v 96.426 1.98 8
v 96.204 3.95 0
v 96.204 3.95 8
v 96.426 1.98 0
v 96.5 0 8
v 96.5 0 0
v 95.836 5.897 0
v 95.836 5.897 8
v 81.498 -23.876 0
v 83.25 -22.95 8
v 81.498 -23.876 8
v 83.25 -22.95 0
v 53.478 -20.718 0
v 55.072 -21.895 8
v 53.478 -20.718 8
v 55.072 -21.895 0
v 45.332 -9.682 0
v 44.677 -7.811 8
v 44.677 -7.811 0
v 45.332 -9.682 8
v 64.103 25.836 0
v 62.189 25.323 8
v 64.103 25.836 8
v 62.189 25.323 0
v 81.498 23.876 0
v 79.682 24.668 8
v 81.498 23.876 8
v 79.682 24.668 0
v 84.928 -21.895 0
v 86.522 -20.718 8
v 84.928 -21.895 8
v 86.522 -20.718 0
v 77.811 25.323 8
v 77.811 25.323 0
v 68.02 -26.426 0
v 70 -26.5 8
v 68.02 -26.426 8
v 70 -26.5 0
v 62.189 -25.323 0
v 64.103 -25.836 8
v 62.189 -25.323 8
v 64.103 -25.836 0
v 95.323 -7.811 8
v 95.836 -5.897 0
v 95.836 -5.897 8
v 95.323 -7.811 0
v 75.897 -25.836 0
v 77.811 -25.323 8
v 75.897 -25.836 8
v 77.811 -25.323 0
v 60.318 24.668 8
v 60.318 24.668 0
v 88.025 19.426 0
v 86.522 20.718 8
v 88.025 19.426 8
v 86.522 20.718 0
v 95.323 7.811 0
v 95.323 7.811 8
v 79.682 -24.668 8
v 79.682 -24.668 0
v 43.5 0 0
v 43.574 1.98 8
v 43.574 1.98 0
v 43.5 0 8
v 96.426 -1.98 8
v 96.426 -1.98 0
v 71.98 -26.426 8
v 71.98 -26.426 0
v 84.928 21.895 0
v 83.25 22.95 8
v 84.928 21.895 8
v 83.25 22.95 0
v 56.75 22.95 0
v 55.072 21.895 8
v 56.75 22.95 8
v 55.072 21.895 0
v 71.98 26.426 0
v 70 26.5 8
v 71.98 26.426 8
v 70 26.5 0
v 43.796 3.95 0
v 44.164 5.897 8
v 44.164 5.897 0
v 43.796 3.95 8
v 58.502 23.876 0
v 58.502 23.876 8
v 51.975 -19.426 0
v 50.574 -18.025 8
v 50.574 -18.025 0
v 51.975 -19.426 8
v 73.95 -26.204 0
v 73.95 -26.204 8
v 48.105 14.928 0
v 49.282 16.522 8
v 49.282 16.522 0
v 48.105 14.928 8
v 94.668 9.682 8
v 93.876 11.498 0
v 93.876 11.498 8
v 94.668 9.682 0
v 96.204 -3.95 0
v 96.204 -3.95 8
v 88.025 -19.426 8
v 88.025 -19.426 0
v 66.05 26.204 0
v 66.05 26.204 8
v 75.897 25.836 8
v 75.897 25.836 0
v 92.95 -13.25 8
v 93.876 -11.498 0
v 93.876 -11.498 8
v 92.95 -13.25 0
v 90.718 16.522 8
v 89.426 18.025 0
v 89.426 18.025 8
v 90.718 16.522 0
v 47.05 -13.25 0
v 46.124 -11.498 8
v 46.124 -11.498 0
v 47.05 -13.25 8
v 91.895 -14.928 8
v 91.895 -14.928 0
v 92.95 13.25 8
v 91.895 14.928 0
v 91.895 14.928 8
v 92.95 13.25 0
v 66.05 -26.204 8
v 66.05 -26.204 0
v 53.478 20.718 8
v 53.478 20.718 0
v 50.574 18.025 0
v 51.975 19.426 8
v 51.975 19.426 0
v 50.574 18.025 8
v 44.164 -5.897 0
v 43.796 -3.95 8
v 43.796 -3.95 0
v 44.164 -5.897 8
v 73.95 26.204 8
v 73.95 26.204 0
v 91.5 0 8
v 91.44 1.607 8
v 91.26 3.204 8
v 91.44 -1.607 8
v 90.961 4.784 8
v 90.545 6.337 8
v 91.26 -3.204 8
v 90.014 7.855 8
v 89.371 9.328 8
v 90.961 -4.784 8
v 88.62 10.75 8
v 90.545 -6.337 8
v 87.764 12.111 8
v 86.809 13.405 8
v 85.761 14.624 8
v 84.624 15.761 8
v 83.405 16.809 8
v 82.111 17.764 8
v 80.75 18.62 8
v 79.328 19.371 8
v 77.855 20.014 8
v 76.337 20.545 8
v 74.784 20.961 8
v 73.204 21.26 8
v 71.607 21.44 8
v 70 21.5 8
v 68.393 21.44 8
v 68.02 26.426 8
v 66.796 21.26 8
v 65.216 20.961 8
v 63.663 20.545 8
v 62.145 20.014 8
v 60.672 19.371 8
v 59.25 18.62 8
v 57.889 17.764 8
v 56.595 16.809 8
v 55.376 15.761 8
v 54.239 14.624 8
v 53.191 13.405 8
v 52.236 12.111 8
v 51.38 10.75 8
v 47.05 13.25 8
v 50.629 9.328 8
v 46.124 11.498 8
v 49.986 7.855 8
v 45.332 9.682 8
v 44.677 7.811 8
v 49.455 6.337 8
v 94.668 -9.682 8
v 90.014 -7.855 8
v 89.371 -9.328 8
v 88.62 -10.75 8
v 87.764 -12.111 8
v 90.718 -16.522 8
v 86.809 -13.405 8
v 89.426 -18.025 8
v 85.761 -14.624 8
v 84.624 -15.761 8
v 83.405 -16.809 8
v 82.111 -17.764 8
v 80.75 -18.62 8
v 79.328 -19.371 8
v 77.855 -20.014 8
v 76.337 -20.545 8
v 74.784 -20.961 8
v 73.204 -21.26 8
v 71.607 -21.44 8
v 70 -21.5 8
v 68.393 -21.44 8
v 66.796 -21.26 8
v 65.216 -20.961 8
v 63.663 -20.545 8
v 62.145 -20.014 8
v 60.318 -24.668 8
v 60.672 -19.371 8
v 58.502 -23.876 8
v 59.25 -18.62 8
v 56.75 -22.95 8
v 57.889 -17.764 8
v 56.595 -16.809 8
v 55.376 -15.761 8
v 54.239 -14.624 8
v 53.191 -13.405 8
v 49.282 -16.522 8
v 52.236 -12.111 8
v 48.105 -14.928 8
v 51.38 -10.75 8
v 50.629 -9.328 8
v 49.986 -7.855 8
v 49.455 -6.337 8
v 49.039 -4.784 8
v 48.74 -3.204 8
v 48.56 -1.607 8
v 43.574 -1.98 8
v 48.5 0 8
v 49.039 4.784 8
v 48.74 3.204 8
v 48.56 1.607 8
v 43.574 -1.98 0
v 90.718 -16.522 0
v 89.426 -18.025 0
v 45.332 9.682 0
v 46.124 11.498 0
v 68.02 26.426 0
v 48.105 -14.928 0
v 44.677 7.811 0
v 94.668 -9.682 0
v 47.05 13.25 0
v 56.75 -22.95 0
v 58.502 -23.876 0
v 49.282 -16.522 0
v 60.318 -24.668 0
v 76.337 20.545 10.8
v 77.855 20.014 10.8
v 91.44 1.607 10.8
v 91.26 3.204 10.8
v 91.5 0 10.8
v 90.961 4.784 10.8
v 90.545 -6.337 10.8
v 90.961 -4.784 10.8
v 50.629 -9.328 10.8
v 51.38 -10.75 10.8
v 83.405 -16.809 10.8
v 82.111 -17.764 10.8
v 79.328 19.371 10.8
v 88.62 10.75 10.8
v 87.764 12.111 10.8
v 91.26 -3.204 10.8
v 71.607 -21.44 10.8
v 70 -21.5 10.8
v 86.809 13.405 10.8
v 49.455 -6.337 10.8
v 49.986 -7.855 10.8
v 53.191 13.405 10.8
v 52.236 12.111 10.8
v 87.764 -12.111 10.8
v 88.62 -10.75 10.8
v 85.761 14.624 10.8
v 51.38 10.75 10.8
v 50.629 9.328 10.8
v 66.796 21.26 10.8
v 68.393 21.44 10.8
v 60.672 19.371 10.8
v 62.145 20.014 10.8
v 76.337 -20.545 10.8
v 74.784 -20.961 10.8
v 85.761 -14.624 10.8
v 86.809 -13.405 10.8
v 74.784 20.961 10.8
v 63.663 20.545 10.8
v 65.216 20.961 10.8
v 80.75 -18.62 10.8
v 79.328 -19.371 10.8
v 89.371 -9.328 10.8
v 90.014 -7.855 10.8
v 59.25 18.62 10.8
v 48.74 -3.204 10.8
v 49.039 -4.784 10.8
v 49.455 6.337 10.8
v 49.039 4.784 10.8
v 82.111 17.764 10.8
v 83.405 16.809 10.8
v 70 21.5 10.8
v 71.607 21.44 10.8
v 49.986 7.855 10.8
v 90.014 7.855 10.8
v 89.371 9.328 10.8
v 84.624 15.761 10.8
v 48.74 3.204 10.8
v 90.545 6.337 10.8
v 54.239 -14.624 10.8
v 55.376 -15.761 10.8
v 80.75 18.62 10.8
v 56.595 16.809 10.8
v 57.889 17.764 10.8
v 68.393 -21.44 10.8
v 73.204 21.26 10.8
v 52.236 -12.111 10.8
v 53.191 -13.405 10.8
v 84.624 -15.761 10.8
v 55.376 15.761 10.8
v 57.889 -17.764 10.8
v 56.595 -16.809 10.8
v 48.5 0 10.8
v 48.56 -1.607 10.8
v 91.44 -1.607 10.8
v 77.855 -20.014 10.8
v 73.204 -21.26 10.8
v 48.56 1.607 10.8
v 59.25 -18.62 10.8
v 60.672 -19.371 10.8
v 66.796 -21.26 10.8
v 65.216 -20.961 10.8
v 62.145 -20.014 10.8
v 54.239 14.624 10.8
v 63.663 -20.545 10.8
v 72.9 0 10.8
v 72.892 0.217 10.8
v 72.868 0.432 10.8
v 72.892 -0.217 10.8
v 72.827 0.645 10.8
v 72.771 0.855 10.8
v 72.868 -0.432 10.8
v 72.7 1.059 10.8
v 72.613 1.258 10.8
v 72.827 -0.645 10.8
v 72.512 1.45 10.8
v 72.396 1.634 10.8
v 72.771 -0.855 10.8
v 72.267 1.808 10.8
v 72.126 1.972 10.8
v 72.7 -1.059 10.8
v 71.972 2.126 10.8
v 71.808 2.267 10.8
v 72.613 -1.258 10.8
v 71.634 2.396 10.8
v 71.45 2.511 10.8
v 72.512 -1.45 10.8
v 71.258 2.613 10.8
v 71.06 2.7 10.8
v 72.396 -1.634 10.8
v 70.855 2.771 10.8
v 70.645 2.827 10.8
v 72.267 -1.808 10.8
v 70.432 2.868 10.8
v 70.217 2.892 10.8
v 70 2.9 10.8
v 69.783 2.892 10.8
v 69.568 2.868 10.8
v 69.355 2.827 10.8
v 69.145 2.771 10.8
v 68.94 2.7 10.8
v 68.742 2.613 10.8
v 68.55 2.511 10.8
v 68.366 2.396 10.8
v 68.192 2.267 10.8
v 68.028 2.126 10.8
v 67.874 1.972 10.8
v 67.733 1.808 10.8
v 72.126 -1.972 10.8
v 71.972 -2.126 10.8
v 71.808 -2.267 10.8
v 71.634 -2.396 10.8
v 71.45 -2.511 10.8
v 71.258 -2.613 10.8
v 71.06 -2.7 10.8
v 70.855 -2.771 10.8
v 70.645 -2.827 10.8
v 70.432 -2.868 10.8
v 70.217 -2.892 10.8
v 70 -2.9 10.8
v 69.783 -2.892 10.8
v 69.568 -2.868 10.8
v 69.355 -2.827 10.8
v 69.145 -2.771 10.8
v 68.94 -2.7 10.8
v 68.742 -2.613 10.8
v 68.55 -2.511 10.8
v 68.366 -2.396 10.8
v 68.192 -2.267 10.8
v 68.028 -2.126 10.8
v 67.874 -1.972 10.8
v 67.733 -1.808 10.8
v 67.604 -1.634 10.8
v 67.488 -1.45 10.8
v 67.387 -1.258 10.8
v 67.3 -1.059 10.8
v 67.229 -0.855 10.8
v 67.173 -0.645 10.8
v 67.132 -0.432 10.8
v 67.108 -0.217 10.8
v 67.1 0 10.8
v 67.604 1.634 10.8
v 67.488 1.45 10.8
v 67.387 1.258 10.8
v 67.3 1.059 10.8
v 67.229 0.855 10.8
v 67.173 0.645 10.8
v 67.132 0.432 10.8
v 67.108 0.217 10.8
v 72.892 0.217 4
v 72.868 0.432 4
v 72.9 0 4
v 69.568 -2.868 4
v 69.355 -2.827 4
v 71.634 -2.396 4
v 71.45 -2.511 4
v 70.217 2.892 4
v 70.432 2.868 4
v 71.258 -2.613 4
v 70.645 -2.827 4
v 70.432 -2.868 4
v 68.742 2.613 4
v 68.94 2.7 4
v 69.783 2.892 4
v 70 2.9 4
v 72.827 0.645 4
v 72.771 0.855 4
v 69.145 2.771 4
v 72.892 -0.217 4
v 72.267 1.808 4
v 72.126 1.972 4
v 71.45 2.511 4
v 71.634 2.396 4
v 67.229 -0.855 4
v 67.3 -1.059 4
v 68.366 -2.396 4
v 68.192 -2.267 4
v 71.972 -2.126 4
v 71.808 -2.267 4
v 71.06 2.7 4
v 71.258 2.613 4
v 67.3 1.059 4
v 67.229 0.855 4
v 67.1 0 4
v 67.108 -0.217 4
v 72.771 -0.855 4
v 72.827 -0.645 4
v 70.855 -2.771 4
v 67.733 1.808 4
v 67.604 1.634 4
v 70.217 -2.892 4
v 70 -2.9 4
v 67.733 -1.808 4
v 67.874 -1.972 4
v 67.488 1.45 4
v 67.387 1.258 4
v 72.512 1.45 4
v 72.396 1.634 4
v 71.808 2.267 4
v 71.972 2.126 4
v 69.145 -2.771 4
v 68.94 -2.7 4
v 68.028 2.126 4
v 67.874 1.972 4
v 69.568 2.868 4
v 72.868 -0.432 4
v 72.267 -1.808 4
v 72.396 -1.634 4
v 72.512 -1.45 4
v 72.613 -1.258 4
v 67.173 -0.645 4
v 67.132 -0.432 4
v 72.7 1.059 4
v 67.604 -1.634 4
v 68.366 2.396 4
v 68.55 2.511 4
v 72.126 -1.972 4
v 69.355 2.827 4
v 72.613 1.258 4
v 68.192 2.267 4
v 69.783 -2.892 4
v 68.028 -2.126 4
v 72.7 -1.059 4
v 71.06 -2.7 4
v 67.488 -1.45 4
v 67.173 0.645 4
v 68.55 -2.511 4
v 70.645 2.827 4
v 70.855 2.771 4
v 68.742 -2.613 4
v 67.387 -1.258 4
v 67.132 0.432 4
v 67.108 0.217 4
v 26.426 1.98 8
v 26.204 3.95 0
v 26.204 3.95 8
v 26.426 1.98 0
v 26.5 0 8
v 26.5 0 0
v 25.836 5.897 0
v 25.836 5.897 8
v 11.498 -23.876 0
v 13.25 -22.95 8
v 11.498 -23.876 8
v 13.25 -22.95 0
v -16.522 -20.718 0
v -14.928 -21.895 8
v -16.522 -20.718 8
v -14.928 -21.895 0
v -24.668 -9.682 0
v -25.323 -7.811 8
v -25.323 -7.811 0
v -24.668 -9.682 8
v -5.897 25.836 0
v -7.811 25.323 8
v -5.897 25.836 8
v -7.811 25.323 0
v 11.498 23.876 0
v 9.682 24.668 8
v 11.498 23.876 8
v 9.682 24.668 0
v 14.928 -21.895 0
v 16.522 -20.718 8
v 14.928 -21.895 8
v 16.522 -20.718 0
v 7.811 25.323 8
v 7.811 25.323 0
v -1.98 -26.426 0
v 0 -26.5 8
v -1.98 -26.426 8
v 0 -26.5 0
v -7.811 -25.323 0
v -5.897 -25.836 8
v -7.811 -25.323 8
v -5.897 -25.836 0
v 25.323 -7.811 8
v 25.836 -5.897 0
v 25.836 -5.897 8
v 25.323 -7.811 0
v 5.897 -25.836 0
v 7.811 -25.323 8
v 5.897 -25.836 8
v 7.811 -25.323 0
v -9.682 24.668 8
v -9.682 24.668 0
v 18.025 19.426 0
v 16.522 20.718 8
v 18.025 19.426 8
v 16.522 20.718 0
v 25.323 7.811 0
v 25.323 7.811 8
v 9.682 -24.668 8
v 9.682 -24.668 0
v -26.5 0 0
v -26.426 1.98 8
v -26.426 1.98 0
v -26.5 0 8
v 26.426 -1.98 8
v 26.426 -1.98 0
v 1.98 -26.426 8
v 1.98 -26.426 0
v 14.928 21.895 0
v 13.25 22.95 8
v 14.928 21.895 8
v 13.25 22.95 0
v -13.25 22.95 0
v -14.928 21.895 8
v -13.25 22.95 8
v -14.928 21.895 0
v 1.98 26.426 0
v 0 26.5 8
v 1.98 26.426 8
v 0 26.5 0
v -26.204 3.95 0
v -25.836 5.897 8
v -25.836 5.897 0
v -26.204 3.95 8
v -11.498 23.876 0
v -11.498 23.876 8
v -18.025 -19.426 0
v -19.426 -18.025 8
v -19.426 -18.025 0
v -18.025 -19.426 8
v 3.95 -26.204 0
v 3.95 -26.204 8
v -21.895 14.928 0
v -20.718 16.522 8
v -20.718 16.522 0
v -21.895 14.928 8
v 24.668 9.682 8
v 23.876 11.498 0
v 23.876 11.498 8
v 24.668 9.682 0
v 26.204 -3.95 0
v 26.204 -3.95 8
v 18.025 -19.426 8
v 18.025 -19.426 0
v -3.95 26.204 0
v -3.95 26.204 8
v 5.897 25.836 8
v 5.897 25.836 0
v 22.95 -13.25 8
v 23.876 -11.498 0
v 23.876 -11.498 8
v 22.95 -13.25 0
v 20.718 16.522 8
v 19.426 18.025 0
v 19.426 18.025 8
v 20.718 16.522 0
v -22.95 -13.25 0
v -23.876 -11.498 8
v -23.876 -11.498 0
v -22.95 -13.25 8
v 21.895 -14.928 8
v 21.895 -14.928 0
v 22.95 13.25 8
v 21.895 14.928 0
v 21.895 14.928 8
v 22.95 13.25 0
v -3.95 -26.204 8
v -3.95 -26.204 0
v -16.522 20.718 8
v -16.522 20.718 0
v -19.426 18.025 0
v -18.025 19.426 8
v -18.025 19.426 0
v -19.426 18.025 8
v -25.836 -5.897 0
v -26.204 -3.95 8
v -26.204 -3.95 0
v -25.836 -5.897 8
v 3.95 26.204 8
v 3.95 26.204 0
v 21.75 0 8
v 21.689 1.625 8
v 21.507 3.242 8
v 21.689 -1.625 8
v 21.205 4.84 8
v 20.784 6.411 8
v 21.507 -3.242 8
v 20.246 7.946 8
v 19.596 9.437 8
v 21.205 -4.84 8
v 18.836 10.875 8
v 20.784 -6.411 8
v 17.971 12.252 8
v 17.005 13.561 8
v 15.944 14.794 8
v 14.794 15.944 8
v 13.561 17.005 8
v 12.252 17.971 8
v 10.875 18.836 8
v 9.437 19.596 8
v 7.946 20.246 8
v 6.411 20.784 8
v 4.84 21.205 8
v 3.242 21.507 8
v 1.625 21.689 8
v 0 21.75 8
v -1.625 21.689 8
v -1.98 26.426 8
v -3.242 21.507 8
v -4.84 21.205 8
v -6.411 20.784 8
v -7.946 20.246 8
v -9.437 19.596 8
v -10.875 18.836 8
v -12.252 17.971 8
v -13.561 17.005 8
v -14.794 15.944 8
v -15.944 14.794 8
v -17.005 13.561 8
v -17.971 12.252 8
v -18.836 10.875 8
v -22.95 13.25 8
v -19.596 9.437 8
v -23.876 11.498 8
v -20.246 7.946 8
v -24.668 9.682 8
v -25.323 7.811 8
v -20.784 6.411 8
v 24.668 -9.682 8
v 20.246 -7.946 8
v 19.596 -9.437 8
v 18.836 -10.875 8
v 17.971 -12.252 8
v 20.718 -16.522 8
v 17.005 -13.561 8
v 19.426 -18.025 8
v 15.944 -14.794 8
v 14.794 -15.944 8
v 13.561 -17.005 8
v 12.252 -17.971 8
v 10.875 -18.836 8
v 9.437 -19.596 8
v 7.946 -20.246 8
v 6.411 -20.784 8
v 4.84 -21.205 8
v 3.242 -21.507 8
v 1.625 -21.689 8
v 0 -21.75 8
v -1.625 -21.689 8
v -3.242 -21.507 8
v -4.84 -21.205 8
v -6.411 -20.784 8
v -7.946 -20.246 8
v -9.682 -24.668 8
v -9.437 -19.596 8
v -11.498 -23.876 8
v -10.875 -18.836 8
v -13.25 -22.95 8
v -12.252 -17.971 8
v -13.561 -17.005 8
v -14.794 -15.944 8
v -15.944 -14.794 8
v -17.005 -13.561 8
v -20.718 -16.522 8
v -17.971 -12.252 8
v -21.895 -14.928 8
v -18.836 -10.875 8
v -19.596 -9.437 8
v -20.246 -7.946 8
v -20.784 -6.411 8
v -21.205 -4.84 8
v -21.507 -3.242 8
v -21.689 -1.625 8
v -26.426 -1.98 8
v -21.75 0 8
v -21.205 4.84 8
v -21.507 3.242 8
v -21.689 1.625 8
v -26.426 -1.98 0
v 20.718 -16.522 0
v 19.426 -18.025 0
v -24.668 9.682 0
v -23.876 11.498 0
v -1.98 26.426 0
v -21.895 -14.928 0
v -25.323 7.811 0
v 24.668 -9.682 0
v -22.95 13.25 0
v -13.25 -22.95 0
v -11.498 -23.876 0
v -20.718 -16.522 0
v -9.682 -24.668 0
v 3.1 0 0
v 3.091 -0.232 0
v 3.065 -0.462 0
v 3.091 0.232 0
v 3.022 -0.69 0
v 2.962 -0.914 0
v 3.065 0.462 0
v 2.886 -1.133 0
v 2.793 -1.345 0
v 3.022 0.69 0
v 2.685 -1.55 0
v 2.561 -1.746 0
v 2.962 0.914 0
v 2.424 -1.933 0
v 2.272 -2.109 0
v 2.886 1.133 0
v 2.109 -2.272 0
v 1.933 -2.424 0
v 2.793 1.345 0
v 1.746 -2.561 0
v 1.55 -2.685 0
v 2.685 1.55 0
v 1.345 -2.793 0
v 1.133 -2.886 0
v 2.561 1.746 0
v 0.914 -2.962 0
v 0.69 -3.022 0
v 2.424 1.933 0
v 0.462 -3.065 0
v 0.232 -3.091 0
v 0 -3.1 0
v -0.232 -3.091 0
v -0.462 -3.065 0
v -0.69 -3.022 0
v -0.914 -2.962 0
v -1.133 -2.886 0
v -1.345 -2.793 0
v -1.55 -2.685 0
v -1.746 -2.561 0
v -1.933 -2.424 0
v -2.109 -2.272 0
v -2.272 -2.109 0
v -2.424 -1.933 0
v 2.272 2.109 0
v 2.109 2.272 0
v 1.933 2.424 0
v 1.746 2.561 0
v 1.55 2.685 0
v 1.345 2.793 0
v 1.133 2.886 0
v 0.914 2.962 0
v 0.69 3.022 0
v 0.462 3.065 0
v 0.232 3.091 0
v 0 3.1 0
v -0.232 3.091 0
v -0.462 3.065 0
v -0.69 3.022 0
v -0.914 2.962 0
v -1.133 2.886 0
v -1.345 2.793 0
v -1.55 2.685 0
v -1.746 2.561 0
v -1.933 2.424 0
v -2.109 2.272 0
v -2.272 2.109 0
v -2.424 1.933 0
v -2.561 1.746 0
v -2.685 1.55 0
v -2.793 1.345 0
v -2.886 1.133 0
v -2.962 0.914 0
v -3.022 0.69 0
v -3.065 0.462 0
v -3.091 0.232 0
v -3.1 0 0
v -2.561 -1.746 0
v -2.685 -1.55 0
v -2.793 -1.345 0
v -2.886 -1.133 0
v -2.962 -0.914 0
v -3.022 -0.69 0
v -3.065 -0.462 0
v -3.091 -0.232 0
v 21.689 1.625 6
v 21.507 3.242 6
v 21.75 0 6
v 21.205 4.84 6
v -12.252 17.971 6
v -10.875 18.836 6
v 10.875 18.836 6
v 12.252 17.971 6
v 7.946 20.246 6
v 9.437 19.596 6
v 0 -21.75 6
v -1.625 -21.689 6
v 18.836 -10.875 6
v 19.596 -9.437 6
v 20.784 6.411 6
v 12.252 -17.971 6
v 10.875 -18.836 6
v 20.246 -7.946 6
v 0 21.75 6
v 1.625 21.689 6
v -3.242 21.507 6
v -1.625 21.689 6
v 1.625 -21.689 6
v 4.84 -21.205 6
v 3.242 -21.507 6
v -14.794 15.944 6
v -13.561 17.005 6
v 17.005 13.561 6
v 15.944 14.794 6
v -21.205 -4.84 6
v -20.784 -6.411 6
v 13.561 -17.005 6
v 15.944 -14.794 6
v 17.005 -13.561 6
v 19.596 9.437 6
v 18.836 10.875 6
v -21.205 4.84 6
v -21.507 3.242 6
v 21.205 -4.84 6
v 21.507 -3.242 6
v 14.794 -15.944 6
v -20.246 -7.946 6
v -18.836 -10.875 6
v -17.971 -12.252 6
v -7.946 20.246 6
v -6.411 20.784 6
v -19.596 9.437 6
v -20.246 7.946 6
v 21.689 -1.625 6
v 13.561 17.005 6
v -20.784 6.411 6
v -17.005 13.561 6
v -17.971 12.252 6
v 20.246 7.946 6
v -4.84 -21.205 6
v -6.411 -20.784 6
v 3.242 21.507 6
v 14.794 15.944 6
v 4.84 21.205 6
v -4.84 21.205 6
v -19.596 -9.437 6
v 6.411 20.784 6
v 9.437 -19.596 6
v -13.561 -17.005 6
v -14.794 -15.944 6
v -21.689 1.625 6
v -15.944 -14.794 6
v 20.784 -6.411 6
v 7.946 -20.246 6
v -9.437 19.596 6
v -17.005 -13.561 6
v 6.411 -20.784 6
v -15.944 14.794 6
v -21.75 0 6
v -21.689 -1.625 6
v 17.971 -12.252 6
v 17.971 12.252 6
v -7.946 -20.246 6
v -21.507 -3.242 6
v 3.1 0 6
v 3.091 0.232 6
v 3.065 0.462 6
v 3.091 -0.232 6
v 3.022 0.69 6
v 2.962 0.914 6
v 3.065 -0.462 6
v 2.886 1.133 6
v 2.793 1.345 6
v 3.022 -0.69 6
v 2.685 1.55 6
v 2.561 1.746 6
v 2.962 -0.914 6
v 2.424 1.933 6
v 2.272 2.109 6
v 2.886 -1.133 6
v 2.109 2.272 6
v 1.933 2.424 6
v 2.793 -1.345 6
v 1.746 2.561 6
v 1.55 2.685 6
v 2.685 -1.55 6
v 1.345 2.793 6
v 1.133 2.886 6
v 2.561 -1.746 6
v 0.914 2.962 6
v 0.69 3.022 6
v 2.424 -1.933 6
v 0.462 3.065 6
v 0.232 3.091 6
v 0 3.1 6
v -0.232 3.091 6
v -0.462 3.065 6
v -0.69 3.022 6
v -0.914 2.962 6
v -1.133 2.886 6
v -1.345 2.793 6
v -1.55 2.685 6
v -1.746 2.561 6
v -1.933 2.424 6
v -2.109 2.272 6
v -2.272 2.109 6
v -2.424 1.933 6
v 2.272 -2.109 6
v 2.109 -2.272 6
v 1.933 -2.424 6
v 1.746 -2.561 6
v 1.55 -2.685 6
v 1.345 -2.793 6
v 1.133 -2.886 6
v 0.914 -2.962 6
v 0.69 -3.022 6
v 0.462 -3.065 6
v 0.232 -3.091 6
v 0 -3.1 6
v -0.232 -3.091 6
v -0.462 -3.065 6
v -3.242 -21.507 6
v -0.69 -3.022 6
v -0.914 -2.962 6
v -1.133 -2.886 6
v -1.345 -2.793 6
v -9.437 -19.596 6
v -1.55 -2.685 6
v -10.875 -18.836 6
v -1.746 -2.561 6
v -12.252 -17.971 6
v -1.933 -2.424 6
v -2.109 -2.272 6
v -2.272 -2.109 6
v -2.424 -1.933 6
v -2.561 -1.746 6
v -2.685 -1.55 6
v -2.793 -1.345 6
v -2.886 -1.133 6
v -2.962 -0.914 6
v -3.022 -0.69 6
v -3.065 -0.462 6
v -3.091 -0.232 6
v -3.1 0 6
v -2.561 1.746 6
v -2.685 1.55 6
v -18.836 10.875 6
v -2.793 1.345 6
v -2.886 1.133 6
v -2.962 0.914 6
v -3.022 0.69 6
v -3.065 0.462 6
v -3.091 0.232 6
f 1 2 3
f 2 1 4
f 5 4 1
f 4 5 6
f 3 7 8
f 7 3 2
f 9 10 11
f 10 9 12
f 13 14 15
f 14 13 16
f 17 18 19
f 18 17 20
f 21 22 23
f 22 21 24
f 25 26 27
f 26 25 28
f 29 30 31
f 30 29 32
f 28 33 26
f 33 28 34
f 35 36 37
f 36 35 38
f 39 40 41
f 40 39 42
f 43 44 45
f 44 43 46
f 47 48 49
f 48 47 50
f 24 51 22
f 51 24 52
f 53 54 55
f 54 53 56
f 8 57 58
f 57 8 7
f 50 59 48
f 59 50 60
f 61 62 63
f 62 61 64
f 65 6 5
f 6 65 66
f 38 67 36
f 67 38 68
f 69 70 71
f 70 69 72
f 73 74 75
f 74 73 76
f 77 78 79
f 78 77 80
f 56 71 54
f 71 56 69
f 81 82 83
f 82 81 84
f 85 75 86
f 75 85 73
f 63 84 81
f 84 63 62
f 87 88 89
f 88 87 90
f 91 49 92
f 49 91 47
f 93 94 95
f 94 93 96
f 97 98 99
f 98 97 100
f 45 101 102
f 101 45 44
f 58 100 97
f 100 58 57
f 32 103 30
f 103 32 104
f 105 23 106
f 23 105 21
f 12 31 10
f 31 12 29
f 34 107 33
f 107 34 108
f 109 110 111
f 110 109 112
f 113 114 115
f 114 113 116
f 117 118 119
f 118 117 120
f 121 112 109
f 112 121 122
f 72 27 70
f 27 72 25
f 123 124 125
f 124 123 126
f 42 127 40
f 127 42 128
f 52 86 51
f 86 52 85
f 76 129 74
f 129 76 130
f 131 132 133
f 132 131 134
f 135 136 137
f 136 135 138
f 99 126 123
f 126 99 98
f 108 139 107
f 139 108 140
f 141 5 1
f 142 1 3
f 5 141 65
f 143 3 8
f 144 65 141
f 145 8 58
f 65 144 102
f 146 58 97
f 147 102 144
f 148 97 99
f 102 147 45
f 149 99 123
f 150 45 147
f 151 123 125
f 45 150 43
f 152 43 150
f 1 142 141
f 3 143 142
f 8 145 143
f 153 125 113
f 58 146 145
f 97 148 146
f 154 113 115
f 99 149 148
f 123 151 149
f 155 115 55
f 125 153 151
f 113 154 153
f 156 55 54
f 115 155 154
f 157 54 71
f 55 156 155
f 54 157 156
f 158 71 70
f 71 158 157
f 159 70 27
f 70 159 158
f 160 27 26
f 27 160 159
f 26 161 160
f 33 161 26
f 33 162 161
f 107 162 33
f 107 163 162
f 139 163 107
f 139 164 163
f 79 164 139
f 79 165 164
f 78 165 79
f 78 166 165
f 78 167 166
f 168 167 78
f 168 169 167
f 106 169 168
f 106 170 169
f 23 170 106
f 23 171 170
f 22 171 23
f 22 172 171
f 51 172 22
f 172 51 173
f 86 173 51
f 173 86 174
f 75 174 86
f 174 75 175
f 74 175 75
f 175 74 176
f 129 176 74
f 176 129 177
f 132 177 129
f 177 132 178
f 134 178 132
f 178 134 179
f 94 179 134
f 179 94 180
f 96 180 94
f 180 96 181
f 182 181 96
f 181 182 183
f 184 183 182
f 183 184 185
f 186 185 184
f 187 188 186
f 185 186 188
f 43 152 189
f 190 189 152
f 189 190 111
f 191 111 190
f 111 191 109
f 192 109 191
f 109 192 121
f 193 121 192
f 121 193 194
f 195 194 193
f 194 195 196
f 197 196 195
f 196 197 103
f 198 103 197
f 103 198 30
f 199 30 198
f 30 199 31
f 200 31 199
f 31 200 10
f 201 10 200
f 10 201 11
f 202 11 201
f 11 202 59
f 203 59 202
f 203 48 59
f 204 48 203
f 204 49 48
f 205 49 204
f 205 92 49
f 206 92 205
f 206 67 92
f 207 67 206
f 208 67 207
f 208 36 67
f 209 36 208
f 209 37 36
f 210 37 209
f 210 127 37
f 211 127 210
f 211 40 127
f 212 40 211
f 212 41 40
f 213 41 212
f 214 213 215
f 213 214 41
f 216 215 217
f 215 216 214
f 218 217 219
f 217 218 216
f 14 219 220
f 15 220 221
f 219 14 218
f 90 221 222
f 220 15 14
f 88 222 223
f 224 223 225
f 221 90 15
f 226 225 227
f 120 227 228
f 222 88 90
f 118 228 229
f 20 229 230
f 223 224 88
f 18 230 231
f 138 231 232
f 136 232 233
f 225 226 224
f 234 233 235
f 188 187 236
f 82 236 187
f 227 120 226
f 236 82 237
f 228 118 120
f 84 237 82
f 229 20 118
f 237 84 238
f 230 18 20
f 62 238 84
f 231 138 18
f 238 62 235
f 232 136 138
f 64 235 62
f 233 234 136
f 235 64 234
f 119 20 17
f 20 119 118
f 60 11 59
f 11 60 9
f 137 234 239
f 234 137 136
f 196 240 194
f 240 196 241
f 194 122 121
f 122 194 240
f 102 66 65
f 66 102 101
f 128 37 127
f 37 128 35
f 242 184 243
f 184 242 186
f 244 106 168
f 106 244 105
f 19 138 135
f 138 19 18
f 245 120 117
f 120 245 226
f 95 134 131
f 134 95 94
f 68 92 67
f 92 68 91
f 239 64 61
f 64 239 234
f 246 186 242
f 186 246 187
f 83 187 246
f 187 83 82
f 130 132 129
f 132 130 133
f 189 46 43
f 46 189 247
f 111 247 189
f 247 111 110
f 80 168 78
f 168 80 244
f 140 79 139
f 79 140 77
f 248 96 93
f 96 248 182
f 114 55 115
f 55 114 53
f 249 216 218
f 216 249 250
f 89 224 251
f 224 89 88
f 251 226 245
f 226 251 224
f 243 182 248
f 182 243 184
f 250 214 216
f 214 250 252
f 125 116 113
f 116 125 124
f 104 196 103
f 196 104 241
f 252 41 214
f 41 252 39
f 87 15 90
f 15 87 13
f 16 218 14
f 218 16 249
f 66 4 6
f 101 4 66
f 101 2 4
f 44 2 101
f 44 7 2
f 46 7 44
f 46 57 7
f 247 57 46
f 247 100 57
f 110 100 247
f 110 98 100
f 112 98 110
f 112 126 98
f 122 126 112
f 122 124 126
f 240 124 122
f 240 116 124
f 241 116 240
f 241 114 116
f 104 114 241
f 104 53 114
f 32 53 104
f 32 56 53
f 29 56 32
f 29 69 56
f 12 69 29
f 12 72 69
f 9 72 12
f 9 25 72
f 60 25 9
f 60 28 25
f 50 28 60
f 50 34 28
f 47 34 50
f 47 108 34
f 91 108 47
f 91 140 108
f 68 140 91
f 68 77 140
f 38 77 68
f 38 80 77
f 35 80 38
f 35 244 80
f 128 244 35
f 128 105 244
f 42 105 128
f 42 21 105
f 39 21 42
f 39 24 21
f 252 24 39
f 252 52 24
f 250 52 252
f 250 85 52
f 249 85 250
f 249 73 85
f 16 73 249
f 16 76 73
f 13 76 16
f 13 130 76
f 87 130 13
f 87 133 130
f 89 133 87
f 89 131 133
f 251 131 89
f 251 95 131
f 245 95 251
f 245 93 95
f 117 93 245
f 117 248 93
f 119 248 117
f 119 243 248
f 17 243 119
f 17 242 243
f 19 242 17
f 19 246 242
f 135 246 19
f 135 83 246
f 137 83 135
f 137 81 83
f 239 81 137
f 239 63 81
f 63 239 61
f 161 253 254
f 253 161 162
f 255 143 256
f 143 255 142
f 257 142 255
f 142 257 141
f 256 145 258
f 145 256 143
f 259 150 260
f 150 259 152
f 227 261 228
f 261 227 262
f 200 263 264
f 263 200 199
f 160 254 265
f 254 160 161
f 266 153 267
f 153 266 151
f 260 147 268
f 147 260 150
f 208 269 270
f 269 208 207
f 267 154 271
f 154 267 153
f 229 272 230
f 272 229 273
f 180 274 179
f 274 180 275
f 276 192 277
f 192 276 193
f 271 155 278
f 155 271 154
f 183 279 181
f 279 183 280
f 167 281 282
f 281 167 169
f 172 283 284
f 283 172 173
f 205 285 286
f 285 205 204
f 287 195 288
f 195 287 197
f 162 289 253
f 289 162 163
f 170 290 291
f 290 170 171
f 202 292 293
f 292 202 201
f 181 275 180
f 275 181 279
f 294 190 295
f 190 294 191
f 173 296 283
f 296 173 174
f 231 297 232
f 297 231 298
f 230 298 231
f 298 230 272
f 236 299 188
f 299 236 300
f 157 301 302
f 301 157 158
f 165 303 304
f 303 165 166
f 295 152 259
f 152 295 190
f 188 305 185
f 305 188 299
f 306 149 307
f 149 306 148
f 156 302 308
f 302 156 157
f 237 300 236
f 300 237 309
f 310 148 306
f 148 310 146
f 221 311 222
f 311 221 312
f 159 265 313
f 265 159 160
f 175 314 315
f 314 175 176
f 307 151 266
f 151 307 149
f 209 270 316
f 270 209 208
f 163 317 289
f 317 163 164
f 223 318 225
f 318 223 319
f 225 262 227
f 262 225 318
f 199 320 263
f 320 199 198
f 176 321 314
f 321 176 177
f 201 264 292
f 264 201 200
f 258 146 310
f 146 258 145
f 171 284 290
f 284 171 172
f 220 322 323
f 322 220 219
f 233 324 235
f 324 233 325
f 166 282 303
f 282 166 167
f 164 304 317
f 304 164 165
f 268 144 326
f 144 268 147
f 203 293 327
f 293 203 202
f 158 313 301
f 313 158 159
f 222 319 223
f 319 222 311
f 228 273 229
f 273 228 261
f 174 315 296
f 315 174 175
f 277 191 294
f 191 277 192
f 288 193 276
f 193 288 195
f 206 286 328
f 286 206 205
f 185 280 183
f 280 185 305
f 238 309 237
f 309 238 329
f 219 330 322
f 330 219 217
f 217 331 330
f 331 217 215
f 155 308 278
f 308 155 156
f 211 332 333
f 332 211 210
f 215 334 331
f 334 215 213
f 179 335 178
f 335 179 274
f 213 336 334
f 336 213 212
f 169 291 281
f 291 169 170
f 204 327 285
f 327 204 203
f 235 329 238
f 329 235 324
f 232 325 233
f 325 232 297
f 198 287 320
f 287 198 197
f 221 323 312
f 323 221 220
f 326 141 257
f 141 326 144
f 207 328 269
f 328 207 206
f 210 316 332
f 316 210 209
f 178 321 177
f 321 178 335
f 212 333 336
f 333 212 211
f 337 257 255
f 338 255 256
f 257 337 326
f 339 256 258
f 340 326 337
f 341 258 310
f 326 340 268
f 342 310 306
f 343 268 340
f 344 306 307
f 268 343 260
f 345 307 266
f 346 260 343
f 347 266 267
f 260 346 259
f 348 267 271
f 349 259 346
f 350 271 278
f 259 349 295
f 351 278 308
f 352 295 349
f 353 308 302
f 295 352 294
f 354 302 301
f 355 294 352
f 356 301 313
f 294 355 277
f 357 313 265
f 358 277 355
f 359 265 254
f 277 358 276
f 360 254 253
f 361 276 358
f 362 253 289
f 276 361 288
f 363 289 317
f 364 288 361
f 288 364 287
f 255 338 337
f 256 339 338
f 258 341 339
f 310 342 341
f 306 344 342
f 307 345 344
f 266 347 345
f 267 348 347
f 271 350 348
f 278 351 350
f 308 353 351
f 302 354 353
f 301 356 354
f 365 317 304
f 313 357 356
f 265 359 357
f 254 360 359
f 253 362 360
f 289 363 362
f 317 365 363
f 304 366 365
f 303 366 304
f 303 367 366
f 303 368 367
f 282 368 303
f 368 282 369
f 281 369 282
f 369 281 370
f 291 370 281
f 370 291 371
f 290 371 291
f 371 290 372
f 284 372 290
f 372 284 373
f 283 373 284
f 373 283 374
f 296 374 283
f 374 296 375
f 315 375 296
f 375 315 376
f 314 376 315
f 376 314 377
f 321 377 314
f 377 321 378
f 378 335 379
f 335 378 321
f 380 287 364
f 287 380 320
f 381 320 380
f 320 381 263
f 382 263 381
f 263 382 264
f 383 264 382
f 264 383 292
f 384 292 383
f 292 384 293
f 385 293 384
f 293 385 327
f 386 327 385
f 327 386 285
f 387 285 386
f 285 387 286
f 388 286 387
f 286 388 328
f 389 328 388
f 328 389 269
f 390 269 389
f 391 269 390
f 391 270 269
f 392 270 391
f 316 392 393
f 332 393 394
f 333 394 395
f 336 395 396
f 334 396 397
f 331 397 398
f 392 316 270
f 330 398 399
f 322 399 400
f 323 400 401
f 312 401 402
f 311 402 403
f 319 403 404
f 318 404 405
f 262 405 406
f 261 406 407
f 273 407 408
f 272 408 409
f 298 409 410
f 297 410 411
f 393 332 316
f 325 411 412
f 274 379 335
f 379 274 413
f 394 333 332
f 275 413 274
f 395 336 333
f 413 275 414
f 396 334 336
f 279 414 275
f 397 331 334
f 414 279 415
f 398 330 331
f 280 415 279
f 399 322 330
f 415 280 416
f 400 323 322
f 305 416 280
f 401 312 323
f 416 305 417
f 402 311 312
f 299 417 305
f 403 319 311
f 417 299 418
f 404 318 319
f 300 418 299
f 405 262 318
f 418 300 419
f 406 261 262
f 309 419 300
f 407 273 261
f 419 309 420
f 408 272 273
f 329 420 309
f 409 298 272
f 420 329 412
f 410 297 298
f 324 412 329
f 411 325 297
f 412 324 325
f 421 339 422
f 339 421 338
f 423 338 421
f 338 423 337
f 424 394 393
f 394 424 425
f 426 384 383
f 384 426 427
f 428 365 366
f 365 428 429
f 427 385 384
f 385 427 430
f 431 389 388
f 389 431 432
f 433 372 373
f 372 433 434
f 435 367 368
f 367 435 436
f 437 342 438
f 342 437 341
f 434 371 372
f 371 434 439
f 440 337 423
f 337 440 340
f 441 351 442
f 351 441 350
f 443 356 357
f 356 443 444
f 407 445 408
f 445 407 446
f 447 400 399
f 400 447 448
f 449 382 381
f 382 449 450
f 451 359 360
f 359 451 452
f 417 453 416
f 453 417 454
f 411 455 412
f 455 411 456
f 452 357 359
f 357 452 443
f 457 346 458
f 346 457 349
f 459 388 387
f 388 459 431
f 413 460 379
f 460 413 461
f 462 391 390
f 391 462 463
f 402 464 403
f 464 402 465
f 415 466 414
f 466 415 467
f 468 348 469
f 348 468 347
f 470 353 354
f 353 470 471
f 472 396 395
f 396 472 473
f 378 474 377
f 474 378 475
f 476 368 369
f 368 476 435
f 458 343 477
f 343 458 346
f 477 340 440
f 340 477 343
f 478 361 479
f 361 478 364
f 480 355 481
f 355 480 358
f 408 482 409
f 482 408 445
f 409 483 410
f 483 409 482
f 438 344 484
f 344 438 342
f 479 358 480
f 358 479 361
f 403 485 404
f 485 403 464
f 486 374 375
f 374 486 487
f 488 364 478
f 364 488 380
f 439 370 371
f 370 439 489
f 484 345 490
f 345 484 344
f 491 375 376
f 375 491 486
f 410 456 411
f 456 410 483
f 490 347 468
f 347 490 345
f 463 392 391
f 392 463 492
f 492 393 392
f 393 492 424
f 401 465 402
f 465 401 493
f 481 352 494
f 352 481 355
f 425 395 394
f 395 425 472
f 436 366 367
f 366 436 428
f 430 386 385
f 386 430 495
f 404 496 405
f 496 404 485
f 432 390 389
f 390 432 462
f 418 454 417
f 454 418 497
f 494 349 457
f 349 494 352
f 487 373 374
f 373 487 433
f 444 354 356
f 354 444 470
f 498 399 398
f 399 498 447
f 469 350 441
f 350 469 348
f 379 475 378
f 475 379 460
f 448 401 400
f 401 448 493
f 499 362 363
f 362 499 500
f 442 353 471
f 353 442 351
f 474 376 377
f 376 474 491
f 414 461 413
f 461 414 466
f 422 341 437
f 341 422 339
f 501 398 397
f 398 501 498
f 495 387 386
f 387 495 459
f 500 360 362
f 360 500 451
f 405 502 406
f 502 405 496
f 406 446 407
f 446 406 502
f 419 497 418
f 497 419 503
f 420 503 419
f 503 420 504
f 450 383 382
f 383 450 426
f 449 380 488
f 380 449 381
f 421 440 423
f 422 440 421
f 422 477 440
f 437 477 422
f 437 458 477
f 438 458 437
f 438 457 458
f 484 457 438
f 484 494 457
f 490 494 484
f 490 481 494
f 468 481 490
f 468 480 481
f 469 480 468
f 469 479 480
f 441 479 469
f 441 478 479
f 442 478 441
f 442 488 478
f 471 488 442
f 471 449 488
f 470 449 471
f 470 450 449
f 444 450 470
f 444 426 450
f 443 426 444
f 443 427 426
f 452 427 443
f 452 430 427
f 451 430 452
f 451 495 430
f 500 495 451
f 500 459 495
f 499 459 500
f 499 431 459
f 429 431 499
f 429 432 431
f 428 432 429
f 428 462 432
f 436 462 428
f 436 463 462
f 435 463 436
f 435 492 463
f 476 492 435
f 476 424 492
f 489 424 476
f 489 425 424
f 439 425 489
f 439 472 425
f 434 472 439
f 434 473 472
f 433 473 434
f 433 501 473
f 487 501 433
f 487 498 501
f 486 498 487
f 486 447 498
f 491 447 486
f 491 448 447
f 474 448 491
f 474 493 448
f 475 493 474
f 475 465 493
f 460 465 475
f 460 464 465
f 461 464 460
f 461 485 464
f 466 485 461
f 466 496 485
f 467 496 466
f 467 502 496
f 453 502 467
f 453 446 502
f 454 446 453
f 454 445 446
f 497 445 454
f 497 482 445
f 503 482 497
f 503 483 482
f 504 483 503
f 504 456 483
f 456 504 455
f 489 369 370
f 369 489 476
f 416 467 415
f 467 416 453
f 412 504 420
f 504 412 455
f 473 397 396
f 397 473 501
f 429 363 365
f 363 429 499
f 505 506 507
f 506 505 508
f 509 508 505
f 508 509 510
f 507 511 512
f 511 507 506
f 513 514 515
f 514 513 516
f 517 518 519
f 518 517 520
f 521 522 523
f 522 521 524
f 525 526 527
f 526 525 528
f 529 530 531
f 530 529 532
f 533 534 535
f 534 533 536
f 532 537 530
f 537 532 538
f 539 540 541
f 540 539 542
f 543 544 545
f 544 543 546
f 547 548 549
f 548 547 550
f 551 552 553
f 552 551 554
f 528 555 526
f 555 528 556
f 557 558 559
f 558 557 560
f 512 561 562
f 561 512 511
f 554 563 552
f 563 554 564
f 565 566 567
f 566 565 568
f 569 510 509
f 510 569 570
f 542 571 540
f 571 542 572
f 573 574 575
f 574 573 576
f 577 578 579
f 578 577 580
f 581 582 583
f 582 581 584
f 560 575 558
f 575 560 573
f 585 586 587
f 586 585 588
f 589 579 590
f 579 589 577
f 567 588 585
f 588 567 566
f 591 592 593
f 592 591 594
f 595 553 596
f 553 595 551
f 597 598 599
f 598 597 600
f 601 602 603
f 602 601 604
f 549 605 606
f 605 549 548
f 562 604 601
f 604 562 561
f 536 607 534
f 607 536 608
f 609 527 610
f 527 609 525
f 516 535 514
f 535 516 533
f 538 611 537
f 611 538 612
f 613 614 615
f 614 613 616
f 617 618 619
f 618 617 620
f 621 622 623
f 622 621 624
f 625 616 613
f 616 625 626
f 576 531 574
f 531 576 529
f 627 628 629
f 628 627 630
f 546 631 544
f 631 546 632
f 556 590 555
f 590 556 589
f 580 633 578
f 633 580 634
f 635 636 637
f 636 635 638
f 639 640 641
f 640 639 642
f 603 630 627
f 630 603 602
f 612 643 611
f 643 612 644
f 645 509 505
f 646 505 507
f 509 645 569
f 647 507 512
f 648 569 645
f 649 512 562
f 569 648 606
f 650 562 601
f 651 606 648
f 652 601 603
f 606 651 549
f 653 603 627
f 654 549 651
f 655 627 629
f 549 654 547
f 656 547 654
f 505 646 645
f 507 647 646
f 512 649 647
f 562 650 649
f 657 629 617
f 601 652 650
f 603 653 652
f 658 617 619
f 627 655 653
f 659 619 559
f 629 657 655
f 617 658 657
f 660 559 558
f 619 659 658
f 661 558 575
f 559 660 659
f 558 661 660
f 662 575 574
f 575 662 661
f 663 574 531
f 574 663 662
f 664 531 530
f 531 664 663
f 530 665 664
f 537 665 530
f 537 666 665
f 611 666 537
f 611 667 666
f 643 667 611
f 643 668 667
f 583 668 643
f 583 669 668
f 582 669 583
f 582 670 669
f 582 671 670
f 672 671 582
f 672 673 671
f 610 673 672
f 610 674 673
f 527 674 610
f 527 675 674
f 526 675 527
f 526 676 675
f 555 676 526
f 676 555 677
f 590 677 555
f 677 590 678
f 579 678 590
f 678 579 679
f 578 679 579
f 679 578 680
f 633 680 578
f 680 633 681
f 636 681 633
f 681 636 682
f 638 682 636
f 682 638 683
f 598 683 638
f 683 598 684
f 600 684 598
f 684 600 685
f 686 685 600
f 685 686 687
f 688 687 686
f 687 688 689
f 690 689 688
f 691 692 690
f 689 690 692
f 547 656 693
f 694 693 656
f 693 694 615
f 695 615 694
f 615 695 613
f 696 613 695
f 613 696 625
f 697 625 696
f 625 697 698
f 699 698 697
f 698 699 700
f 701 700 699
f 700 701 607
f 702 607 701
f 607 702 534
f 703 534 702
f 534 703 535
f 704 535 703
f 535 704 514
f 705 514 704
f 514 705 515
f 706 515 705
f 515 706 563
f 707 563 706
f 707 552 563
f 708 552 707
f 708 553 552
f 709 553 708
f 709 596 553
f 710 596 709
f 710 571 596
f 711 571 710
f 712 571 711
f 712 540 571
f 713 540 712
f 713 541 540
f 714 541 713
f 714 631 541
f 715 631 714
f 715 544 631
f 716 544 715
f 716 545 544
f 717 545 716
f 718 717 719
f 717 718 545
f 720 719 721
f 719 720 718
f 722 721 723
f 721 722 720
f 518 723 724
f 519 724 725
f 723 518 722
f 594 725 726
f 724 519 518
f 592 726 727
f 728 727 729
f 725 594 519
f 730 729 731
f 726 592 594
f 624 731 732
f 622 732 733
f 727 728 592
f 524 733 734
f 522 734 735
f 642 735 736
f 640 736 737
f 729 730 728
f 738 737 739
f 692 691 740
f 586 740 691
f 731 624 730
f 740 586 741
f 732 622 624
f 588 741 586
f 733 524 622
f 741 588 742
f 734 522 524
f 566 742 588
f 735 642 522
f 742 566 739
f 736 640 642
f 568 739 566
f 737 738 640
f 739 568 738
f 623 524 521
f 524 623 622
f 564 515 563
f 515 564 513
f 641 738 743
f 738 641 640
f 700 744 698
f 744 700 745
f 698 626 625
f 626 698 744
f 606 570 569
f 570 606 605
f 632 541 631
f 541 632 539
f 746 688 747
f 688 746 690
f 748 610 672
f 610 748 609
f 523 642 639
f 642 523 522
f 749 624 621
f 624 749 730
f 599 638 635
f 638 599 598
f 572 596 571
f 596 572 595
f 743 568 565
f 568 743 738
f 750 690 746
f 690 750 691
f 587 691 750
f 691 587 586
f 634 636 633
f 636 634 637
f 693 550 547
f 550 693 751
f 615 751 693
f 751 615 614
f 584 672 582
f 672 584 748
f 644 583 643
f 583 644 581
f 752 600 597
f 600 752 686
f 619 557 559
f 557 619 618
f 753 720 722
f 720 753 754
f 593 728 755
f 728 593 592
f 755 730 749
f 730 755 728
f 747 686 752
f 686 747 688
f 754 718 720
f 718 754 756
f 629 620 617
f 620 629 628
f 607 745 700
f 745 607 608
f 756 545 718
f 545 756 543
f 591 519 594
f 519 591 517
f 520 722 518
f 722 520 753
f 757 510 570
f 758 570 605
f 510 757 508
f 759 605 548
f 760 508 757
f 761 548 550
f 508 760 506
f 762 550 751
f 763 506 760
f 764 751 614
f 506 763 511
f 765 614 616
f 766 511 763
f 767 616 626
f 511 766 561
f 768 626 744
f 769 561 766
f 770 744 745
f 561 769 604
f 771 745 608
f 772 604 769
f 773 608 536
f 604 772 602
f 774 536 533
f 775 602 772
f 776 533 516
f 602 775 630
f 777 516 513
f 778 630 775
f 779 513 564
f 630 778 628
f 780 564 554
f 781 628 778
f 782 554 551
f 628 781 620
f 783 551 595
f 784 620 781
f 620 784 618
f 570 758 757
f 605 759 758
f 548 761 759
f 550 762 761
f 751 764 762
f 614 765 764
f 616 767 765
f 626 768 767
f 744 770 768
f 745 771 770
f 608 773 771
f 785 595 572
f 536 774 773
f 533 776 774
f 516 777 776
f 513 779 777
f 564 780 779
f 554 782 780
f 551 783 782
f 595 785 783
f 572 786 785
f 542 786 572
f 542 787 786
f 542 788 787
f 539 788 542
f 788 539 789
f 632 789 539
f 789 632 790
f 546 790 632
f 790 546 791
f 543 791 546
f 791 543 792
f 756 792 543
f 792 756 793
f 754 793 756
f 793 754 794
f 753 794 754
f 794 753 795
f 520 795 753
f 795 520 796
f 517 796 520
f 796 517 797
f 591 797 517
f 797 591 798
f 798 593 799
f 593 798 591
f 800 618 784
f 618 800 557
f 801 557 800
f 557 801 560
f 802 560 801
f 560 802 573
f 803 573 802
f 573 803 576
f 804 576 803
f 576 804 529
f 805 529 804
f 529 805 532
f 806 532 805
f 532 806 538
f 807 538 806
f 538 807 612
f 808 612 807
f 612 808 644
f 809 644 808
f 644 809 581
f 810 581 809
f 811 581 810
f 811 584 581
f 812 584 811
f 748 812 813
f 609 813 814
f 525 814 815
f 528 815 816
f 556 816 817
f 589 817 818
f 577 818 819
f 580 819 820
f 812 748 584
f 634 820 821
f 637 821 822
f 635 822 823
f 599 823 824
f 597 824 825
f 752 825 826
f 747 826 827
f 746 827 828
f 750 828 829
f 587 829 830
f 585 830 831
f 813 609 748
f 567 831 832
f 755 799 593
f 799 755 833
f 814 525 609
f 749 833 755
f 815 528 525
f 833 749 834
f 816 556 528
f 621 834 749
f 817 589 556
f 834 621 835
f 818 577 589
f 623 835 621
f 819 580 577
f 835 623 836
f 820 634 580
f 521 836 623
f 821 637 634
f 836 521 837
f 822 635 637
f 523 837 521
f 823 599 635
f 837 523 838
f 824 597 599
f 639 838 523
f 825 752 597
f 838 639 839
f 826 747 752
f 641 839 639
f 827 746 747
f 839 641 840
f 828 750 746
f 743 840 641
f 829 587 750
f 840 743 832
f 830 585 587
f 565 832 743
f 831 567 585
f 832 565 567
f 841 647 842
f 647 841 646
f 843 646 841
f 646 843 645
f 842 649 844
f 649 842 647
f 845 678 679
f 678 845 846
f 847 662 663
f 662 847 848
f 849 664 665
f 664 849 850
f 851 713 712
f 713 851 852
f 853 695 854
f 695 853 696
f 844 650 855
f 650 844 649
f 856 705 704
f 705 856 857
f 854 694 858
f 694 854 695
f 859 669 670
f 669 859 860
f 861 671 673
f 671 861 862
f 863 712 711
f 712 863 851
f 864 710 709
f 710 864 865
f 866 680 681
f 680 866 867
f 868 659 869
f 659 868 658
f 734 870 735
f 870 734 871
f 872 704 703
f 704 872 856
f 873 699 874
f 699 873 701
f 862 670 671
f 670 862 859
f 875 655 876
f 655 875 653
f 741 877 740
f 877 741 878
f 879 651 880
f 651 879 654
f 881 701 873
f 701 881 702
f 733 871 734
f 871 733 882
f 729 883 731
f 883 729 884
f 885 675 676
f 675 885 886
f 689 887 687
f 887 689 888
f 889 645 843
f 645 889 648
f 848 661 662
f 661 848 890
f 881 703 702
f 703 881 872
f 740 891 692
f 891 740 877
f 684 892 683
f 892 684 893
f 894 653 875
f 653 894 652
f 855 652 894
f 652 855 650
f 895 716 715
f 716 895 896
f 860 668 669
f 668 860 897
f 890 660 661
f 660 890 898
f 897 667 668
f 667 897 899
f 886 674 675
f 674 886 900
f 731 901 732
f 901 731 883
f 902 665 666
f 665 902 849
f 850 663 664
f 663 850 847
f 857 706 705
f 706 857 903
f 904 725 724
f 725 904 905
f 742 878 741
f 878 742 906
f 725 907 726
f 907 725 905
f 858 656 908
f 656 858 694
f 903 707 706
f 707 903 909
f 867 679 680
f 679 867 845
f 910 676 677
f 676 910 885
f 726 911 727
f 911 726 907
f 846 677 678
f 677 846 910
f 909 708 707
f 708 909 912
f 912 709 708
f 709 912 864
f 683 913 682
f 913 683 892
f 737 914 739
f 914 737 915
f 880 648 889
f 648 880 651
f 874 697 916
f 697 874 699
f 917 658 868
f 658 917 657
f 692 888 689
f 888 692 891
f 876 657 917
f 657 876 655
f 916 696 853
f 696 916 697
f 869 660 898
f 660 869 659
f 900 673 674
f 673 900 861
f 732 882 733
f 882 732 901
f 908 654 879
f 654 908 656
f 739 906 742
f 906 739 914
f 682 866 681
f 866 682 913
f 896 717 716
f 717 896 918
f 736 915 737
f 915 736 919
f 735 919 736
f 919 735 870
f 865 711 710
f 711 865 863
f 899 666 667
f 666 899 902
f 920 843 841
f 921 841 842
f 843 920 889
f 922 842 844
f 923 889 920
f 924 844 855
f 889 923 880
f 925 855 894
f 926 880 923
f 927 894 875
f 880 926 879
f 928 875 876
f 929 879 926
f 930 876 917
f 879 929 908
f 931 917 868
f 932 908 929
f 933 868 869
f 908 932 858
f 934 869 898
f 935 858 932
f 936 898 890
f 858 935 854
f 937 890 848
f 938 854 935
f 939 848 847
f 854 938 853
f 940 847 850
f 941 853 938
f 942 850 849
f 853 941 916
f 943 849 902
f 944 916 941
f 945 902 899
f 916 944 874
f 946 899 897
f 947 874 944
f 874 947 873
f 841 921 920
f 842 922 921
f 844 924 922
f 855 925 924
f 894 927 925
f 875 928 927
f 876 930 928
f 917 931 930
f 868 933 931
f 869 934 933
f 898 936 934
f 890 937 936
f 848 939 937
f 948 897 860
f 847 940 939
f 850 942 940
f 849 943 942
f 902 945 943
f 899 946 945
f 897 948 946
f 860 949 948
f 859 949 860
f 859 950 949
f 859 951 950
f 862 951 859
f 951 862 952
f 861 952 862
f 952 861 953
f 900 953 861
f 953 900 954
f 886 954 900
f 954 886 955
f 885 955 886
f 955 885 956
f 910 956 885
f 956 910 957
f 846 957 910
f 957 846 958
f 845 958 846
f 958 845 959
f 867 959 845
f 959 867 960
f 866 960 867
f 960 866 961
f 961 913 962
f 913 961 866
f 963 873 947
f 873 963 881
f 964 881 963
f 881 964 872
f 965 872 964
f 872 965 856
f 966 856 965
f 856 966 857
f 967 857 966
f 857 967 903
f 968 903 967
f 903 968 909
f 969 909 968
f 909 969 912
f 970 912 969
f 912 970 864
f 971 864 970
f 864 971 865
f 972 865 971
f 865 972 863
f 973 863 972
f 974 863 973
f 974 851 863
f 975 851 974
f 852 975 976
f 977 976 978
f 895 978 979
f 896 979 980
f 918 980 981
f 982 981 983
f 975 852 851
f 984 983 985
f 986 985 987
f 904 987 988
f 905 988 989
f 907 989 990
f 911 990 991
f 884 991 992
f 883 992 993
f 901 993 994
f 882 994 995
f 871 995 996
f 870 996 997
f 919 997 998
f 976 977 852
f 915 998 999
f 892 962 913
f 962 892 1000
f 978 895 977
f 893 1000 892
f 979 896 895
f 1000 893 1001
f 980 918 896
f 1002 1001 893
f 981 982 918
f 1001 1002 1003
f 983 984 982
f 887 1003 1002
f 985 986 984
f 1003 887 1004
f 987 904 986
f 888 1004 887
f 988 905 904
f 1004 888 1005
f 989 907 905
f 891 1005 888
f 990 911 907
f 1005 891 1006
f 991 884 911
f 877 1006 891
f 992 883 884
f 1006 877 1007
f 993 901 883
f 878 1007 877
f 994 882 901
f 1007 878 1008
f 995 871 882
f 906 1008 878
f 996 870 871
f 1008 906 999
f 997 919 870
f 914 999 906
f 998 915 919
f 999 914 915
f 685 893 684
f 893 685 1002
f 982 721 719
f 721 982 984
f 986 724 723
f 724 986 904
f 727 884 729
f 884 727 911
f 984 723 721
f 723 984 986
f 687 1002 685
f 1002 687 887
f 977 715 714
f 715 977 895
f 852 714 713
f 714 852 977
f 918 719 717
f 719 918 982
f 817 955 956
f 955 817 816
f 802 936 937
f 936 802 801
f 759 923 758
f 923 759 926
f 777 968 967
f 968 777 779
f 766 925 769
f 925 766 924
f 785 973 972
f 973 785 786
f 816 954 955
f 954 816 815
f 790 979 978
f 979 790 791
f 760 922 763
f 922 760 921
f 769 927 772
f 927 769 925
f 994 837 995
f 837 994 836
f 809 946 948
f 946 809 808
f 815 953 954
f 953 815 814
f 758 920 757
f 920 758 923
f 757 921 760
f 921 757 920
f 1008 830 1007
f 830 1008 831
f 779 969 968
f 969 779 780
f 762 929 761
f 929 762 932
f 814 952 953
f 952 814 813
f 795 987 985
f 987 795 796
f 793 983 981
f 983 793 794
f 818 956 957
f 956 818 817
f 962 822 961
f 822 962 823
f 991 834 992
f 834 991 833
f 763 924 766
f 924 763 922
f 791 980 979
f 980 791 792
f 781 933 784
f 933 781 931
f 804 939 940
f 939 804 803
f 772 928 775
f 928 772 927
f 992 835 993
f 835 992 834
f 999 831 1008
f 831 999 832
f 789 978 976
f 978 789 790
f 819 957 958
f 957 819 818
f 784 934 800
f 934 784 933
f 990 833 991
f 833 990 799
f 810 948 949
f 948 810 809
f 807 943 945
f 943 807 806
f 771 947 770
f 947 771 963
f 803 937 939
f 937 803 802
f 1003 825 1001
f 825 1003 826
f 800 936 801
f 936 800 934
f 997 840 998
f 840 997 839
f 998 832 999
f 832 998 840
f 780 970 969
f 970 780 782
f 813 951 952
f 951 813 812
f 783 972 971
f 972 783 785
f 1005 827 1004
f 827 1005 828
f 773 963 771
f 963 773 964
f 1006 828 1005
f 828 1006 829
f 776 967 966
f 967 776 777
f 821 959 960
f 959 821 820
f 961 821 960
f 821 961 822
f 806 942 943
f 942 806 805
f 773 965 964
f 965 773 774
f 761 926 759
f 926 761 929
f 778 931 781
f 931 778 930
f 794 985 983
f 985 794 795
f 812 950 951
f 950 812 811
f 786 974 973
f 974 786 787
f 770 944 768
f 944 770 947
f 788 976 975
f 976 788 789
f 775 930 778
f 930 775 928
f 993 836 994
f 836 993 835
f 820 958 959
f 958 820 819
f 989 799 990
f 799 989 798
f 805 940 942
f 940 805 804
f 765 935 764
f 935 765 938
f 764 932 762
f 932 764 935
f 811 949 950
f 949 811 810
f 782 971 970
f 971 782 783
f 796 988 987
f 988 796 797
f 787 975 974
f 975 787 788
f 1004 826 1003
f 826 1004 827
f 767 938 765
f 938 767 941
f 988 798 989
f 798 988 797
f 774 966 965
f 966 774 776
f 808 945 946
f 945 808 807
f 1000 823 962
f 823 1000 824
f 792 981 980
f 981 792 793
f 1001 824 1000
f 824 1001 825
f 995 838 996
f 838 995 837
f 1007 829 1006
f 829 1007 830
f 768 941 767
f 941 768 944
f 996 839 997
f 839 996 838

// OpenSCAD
// Rain-Barrel cap for side Hole

h1=8;
d1=43;
wallThickness=2.8;
$fn=84;

translate([70,0,0]) Part1();
translate([0,0,0]) Part2();


module Part1(){    
    difference(){
        union(){
            // Deckel
            cylinder(d=d1+10,h=h1);

            // Fuellung Loch
            translate([0,0,h1])
                cylinder(d=d1,h=wallThickness);
        }
        
        translate([0,0,4])
            cylinder(d=5.8,h=14);
}
}

module Part2(){    
    difference(){
        // Deckel
        cylinder(d=d1+10,h=h1);

        // Fuellung Loch
        translate([0,0,h1-2])
            cylinder(d=d1+.5,h=22);
        
        
        translate([0,0,-.1])
            cylinder(d=6.2,h=14);
    }
}
